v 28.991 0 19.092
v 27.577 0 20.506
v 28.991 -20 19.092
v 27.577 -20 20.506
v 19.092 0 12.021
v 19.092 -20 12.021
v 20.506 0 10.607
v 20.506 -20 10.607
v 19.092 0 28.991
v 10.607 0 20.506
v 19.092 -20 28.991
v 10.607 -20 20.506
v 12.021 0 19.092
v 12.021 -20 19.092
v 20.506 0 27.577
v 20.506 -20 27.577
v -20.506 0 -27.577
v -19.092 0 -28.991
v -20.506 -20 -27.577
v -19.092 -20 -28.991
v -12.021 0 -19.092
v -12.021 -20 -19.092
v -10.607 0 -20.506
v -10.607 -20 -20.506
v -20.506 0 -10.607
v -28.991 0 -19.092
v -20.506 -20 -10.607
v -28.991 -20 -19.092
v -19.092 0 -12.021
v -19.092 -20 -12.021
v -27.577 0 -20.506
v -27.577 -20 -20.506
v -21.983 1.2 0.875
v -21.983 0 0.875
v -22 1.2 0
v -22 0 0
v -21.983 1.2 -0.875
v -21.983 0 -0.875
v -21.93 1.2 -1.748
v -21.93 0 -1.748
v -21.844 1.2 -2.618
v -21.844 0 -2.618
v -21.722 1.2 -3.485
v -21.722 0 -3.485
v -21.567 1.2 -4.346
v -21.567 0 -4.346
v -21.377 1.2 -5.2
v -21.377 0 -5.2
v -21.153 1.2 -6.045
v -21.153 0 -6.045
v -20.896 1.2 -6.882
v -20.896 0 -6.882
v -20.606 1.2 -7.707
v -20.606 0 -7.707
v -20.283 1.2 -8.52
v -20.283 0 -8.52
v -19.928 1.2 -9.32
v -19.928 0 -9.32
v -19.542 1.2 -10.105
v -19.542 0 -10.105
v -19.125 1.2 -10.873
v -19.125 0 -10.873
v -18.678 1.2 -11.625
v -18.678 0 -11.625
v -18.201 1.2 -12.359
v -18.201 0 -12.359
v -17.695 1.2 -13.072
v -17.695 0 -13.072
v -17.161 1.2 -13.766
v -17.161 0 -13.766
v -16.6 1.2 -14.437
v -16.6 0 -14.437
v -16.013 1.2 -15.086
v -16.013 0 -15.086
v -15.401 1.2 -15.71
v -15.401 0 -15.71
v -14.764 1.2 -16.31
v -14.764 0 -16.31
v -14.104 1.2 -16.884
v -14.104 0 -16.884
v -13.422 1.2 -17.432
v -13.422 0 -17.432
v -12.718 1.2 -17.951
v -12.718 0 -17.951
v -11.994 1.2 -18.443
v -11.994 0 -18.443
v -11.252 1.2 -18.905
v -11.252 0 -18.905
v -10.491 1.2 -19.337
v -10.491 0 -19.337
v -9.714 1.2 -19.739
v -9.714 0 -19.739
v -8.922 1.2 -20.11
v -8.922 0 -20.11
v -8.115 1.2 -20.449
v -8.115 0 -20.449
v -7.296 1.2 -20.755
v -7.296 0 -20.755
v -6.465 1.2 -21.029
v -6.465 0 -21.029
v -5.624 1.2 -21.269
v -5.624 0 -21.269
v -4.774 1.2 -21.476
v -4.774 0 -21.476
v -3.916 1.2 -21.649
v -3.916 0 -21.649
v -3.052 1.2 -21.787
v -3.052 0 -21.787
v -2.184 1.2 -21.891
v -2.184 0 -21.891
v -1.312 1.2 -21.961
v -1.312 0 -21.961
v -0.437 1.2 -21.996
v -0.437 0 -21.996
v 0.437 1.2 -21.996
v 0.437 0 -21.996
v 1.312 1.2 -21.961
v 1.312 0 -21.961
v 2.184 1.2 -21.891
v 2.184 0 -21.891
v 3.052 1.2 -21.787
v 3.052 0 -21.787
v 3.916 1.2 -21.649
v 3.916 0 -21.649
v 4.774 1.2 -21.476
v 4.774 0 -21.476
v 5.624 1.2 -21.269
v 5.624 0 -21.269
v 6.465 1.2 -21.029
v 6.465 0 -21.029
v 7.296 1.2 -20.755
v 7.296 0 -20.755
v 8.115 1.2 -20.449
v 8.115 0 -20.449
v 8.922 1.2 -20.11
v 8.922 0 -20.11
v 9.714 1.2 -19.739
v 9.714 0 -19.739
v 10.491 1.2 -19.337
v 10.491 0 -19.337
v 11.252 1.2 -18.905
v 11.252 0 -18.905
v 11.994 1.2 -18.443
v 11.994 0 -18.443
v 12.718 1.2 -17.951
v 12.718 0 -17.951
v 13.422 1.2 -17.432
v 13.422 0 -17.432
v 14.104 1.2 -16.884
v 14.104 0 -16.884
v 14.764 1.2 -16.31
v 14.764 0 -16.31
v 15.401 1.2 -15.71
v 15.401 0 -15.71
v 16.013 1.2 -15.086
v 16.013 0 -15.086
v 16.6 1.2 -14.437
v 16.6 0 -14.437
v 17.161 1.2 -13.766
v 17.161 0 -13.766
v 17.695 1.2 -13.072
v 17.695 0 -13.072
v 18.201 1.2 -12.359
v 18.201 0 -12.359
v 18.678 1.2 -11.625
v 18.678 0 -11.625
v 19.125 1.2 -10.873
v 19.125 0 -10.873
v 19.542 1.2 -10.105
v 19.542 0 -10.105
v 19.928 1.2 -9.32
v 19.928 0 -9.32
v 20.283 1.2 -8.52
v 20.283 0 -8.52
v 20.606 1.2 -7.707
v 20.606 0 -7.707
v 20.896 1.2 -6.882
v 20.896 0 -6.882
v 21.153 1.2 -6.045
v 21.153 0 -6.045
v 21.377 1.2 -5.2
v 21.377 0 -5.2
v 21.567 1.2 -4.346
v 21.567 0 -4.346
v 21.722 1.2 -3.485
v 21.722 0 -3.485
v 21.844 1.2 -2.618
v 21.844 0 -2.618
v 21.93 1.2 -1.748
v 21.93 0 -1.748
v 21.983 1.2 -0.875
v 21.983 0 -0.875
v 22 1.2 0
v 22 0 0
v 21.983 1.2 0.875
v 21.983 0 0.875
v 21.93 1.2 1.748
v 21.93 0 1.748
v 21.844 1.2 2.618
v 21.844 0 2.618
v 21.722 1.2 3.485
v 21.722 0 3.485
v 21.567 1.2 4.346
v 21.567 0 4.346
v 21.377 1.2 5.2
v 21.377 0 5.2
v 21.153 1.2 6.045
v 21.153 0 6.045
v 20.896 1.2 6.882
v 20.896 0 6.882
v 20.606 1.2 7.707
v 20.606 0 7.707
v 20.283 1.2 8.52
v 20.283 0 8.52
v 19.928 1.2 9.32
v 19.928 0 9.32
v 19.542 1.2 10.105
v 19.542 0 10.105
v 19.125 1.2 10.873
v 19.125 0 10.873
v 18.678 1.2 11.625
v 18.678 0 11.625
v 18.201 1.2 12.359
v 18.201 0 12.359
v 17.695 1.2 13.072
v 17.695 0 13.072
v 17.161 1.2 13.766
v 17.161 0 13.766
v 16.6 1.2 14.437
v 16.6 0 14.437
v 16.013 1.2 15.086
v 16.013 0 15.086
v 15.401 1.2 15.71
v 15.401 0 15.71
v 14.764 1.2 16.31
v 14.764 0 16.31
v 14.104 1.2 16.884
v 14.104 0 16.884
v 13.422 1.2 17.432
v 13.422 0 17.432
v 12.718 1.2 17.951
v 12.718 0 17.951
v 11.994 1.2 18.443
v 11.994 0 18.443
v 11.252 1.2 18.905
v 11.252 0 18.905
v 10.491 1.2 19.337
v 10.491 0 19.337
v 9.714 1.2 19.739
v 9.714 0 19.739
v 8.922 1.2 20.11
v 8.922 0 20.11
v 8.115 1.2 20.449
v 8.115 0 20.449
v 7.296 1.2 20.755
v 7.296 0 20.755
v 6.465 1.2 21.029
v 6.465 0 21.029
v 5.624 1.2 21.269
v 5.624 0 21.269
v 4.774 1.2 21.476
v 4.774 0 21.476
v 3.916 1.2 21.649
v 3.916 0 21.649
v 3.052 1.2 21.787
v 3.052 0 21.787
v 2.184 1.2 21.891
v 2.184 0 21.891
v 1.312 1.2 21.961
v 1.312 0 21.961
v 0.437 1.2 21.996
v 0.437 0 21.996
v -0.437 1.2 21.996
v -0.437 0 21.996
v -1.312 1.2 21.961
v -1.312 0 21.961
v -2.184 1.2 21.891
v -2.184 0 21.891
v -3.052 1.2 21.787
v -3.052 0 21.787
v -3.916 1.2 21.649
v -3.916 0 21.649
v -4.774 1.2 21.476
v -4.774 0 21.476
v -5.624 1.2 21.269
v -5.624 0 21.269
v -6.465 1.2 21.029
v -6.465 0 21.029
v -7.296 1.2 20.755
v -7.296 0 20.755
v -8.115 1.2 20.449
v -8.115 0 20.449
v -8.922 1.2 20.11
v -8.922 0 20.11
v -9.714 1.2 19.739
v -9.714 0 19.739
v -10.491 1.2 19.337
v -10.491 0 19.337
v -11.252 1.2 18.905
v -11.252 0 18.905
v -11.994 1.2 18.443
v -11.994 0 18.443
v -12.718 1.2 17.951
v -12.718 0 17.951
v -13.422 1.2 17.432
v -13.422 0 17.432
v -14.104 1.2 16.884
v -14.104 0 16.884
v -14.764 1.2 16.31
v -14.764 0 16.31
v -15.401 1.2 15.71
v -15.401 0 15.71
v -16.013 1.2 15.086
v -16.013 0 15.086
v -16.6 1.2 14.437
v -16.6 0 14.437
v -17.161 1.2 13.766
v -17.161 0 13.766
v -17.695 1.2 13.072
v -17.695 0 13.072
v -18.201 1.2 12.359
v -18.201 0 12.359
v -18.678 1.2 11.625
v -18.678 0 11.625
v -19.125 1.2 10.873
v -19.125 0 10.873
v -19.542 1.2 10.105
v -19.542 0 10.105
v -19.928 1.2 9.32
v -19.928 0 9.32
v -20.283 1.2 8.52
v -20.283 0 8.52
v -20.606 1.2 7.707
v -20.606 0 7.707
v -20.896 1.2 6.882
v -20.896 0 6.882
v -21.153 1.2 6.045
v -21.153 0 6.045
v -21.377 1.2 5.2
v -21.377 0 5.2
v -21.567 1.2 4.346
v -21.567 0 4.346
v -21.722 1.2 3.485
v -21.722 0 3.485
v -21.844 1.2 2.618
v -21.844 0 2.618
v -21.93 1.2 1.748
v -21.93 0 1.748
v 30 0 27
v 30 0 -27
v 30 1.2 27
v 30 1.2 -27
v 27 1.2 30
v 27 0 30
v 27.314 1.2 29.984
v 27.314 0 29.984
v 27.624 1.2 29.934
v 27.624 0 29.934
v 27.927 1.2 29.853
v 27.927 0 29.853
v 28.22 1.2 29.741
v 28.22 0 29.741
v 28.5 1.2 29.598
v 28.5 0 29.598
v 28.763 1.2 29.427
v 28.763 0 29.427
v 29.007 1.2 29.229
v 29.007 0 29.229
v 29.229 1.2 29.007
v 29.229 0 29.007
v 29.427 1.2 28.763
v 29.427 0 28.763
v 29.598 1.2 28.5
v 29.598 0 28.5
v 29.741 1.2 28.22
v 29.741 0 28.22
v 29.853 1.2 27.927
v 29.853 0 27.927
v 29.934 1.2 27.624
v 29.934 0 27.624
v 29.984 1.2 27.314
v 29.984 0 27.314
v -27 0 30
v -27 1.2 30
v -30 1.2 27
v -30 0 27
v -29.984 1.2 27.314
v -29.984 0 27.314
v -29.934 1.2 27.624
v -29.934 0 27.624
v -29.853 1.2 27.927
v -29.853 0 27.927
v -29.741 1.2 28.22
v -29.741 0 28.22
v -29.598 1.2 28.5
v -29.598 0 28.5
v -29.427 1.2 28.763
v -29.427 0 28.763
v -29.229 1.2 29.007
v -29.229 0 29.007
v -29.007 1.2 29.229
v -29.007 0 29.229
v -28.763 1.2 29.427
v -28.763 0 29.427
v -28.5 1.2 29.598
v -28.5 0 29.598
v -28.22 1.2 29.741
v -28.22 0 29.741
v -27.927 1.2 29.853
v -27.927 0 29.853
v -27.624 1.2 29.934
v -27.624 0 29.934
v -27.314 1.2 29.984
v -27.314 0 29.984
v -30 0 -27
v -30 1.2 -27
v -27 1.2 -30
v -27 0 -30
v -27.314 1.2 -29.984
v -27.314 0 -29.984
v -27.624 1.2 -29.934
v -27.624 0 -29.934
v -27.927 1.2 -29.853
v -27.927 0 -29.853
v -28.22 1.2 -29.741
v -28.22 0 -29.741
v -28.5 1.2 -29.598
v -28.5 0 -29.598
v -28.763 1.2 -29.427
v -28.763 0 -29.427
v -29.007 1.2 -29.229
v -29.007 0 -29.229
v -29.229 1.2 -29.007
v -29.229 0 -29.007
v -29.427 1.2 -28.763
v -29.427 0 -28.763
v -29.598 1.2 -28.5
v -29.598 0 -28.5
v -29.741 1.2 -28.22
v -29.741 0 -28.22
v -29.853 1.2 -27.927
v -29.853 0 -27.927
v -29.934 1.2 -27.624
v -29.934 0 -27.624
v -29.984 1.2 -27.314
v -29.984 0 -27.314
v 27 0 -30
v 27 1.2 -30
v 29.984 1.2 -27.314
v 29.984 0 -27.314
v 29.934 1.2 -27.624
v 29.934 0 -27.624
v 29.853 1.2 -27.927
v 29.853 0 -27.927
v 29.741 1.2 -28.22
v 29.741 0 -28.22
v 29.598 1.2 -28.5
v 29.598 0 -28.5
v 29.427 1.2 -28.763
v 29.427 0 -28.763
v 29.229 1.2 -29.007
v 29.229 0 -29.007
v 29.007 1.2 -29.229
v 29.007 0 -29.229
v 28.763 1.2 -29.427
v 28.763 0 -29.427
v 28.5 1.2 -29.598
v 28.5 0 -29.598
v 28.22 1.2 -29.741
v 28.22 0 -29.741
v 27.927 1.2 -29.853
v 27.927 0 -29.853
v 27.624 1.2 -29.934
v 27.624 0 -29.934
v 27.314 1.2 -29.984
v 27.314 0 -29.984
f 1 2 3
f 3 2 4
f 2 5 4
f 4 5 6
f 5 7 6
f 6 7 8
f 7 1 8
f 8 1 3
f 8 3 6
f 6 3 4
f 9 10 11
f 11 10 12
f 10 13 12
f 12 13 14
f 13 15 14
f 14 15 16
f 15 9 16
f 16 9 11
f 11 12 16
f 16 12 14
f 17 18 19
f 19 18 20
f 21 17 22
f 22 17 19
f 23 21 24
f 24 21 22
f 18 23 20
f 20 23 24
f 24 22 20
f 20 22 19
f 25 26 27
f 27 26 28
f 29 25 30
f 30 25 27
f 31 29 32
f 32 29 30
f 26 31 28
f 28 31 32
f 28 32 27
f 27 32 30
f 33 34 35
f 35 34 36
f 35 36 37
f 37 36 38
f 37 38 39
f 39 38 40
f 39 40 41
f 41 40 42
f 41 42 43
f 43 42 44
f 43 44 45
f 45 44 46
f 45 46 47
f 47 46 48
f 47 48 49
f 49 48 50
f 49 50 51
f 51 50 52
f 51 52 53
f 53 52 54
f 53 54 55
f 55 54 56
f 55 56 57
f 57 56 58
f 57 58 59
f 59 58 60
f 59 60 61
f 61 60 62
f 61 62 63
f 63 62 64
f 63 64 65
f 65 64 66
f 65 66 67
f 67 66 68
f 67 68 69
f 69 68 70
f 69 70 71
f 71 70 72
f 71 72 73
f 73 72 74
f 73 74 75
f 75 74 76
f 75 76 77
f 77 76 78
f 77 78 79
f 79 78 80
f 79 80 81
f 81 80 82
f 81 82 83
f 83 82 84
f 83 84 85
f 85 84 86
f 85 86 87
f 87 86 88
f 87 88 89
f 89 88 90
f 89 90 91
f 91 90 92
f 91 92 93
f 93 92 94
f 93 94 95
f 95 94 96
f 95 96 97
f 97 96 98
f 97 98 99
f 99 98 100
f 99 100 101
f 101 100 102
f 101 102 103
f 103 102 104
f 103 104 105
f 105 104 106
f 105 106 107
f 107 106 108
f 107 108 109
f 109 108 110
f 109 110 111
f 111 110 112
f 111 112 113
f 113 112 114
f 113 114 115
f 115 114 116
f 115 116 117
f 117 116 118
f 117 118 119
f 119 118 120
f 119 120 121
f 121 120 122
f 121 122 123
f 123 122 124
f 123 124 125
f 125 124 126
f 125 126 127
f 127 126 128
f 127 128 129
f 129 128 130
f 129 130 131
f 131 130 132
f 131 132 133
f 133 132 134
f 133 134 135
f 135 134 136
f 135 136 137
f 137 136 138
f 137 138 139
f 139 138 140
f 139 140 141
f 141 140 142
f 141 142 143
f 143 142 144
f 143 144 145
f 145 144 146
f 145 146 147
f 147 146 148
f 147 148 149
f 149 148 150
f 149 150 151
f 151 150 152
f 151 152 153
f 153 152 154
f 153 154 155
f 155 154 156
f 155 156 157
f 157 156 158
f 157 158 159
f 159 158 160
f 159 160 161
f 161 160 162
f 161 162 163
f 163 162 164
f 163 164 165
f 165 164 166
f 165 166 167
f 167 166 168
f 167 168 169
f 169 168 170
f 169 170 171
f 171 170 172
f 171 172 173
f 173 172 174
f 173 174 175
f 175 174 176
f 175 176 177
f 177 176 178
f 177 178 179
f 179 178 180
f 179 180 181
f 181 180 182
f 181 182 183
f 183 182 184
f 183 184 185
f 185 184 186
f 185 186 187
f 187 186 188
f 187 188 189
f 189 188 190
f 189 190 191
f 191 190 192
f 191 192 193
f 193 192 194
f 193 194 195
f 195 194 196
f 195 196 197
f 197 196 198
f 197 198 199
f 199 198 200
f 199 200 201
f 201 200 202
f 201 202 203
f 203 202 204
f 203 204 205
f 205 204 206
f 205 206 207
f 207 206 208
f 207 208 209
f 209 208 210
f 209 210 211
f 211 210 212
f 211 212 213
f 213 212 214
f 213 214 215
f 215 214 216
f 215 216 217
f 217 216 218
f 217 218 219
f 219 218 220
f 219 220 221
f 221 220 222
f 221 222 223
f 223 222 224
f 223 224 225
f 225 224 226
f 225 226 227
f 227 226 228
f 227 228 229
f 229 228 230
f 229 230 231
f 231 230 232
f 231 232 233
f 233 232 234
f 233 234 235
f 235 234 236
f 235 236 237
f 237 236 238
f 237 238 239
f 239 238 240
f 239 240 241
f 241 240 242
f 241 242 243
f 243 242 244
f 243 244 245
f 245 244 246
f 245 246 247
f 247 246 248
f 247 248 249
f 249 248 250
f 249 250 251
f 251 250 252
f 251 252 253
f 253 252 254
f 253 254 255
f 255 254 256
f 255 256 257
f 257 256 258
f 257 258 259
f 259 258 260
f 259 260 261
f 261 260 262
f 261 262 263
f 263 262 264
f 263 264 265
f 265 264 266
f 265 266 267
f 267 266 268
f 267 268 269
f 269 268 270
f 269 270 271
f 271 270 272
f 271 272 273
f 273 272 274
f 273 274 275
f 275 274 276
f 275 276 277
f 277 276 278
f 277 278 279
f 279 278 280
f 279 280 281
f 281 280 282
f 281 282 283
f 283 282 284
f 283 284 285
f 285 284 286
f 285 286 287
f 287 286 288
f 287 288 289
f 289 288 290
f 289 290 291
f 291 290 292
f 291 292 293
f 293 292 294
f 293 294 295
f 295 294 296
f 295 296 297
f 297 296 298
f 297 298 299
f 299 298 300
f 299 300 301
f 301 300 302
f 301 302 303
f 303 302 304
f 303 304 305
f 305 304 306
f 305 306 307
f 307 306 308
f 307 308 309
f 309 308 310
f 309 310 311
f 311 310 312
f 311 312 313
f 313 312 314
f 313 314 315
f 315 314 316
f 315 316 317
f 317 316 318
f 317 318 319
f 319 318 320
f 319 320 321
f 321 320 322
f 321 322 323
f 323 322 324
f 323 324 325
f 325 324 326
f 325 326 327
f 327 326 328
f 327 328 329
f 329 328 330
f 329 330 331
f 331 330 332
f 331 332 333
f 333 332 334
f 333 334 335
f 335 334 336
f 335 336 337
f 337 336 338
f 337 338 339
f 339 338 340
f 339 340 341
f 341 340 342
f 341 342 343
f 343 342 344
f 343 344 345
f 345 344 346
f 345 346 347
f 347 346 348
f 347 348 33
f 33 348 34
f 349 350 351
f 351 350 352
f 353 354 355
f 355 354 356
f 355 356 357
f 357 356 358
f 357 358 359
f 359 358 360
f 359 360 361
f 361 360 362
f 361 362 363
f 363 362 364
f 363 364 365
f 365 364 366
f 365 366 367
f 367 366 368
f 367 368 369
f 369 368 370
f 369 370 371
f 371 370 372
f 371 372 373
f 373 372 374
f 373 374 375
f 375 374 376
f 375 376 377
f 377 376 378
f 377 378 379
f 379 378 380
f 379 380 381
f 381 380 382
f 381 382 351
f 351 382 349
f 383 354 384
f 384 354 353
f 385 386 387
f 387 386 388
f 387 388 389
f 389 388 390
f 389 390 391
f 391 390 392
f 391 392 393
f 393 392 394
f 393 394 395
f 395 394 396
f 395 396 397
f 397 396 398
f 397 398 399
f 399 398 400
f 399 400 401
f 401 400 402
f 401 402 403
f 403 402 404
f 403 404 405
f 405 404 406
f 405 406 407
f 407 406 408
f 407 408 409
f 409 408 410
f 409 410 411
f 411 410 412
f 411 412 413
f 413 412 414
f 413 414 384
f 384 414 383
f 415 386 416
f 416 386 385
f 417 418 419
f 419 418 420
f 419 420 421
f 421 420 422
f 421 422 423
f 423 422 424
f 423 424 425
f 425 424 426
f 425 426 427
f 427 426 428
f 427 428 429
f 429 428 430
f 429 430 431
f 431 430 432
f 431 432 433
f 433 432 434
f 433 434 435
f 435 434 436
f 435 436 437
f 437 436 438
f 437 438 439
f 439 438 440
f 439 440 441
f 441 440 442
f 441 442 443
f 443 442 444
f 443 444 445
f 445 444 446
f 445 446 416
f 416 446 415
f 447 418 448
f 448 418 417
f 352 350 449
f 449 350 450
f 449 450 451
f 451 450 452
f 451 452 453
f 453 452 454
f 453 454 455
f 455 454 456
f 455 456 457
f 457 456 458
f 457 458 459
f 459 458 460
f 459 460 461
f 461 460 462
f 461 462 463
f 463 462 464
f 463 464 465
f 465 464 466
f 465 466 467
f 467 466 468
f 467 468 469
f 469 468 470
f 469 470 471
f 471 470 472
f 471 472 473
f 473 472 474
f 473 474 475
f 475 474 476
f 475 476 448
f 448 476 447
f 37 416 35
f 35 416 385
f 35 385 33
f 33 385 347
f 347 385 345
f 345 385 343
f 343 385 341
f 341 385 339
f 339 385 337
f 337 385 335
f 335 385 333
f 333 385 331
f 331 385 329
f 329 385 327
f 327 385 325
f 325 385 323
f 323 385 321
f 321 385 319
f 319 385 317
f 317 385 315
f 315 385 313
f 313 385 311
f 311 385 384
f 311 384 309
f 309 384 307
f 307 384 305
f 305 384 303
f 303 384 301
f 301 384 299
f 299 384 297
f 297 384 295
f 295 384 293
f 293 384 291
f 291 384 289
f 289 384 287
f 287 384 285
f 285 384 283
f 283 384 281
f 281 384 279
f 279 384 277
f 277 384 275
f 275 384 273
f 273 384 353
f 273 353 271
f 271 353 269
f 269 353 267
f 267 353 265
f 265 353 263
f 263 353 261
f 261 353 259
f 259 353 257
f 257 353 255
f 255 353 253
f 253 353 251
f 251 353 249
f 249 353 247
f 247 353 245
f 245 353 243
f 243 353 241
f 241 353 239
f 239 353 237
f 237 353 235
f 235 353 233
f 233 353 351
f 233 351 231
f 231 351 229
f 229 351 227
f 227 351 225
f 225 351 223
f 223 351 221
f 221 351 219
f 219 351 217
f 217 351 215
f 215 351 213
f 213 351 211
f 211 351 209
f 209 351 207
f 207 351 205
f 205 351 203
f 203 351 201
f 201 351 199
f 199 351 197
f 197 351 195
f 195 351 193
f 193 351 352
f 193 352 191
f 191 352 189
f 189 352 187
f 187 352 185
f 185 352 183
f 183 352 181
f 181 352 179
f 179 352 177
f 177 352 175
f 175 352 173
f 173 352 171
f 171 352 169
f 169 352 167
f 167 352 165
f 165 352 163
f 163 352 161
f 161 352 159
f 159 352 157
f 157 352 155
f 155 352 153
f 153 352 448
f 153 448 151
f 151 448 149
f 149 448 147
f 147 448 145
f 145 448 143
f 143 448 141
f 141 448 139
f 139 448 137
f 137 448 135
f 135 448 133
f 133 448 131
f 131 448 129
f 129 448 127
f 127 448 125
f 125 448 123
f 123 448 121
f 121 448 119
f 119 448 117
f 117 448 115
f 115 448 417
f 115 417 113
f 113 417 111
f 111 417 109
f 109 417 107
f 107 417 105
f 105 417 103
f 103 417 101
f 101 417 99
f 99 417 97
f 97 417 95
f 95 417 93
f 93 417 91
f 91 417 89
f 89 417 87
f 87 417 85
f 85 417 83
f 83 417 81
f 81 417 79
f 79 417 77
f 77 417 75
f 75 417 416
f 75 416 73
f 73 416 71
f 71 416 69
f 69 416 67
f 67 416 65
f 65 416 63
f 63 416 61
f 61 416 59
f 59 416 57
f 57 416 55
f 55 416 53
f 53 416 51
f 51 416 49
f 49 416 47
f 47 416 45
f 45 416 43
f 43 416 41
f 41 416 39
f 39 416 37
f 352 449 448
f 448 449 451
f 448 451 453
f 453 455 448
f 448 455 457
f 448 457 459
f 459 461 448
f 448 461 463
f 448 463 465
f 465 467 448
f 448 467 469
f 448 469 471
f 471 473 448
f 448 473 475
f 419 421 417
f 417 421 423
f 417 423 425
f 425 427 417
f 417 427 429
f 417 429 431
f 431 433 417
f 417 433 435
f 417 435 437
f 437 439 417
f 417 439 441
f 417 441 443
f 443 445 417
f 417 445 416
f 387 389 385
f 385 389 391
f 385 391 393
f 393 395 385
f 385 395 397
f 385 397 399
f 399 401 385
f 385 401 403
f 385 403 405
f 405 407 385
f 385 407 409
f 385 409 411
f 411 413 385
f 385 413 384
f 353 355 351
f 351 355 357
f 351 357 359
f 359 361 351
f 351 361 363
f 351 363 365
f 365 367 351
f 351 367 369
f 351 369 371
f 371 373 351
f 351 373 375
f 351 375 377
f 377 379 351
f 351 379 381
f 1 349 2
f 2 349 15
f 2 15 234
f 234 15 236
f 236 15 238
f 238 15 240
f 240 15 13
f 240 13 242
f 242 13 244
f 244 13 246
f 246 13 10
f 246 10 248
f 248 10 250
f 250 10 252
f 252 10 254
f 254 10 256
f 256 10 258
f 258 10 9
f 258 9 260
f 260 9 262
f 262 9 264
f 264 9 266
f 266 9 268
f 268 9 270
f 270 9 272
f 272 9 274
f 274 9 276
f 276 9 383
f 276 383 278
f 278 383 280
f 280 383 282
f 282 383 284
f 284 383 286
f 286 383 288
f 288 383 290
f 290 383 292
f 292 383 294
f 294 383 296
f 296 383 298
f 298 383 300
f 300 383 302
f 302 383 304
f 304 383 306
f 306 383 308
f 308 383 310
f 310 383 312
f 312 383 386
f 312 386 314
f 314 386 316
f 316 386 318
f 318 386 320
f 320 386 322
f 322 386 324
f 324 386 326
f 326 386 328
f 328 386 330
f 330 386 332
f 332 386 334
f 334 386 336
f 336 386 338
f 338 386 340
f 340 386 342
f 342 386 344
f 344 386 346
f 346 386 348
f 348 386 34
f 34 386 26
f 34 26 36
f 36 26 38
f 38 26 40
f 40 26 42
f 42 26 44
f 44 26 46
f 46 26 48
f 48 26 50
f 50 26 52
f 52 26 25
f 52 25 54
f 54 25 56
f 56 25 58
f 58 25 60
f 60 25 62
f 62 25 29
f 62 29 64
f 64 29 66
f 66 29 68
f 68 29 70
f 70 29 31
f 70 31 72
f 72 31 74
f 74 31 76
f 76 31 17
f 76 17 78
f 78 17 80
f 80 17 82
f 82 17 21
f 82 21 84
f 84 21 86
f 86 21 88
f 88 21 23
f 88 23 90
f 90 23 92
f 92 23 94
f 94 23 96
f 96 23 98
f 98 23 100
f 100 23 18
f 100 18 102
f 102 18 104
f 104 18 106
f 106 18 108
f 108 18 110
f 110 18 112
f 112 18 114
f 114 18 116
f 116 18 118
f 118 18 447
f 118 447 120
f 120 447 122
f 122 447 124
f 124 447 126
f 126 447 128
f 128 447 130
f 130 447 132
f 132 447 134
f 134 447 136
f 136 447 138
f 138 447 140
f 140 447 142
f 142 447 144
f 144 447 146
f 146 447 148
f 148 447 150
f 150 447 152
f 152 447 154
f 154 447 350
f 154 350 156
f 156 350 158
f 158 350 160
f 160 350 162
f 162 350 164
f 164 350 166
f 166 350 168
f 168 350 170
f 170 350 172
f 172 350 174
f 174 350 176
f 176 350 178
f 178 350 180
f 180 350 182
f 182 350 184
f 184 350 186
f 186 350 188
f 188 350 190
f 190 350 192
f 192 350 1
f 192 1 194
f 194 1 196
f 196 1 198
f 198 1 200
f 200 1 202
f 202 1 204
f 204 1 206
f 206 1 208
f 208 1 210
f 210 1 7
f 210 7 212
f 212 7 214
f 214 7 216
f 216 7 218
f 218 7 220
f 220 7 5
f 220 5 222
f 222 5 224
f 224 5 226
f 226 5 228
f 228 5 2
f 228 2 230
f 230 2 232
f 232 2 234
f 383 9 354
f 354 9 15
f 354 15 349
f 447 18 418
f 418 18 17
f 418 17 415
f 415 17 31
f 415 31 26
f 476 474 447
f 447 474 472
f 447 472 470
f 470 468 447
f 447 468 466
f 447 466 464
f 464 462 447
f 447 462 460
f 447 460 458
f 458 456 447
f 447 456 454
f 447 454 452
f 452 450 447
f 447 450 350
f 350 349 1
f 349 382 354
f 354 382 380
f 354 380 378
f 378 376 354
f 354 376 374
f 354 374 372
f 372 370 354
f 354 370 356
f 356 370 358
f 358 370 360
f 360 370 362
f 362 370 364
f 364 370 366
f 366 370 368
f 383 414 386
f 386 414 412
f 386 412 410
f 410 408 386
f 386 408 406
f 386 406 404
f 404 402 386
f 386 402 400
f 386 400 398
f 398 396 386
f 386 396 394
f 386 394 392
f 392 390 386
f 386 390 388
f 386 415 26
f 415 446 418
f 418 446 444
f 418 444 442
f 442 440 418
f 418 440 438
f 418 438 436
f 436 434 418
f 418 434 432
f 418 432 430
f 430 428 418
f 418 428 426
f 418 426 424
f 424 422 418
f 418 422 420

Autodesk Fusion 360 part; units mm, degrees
sketch "MainRest" plane through (0, 0, 0) normal (0, 1, 0) x (1, 0, 0)
  circle A0 centre (0, 0) radius 36 construction
  line L0 (27, 30) -> (-27, 30)
  line L1 (-30, 27) -> (-30, -27)
  line L2 (-27, -30) -> (27, -30)
  line L3 (30, -27) -> (30, 27)
  line L4 (30, 30) -> (-30, -30) construction
  line L5 (-30, 30) -> (30, -30) construction
  circle A1 centre (0, 0) radius 22
  arc A2 (-27, 30) -> (-30, 27) centre (-27, 27) ccw
  arc A3 (27, -30) -> (30, -27) centre (27, -27) ccw
  arc A4 (-30, -27) -> (-27, -30) centre (-27, -27) ccw
  arc A5 (30, 27) -> (27, 30) centre (27, 27) ccw
  dimension "d3" = 72
  dimension "d4" = 60
  dimension "d5" = 60
  dimension "d8" = 44
  dimension "d9" = 3
extrude "Extrude1" add sketch "MainRest" along normal blind 1.2
ref_plane "WorkPlane1" through (-15.5563, 1.9245, -15.5563) normal (0.7071, 0, 0.7071) x (-0.7071, 0, 0.7071)
ref_plane "WorkPlane2" through (15.5563, 0.9394, 15.5563) normal (-0.7071, 0, -0.7071) x (0.7071, 0, -0.7071)
sketch "SensorHolder" plane through (0, 0, 0) normal (0, -1, 0) x (1, 0, 0)
  circle A0 centre (0, 0) radius 22
  arc A1 (27, -30) -> (30, -27) centre (27, -27) ccw
  line L0 (30, -27) -> (30, 27)
  arc A2 (30, 27) -> (27, 30) centre (27, 27) ccw
  line L1 (27, 30) -> (-27, 30)
  arc A3 (-27, 30) -> (-30, 27) centre (-27, 27) ccw
  line L2 (-30, 27) -> (-30, -27)
  arc A4 (-30, -27) -> (-27, -30) centre (-27, -27) ccw
  line L3 (-27, -30) -> (27, -30)
  line L4 (10.8437, -41.9563) -> (-41.9563, 10.8437) construction
  circle A5 centre (0, 0) radius 22 construction
  arc A6 (-29.1233, -20.3743) -> (-29.4263, -20.7386) centre (-26.9042, -22.5282) ccw
  circle A7 centre (0, 0) radius 36
  line L5 (-19.0919, -12.0208) -> (-12.0208, -19.0919) construction
  line L6 (-12.0208, -19.0919) -> (-20.5061, -27.5772) construction
  line L7 (-20.5061, -27.5772) -> (-27.5772, -20.5061) construction
  line L8 (-27.5772, -20.5061) -> (-19.0919, -12.0208) construction
  line L9 (-20.5061, -27.5772) -> (-12.0208, -19.0919) construction
  line L10 (-27.5772, -20.5061) -> (-19.0919, -12.0208)
  line L11 (-19.0919, -12.0208) -> (-20.5061, -10.6066)
  line L12 (-20.5061, -10.6066) -> (-28.9914, -19.0919)
  line L13 (-28.9914, -19.0919) -> (-27.5772, -20.5061)
  line L14 (-20.5061, -27.5772) -> (-12.0208, -19.0919)
  line L15 (-12.0208, -19.0919) -> (-10.6066, -20.5061)
  line L16 (-10.6066, -20.5061) -> (-19.0919, -28.9914)
  line L17 (-19.0919, -28.9914) -> (-20.5061, -27.5772)
  point P0 (-31.1127, -22.6274)
  dimension "d62" = 10
  dimension "d63" = 12
  dimension "d65" = 2
  dimension "d66" = 2
extrude "Extrude5" add sketch "SensorHolder" along normal blind 20 contours L10 L11 L12 L13 | L14 L15 L16 L17
ref_plane "WorkPlane3" through (0, 1.9245, 0) normal (0.7071, 0, 0.7071) x (-0.7071, 0, 0.7071)
mirror "Mirror1" about plane through (0, 1.9245, 0) normal (0.7071, 0, 0.7071) of "Extrude5"
equation "GutterSquareHoleWidth = 60 mm"
equation "GutterHoleDiameter = 72 mm"
equation "d3 = GutterHoleDiameter"
equation "d4 = GutterSquareHoleWidth"
equation "d5 = GutterSquareHoleWidth"
equation "GolfBallDiameter = 43 mm"
equation "GolfHolePadding = 1 mm"
equation "d8 = GolfBallDiameter + GolfHolePadding"
equation "d9 = SquareCornerRounding"
equation "SquareCornerRounding = 3 mm"
equation "SquareBitThickness = 1.2 mm"
equation "d12 = SquareBitThickness"
equation "SensorHeight = 20 mm"
equation "SensorWidth = 10 mm"
equation "SensorDepth = 8 mm"
equation "SensorRealDepth = 12 mm"
equation "SensorScrewBottomOffset = 3 mm"
equation "SensorScrewHoleDiameter = 4 mm"
equation "InsertDiameter = 4 mm"
equation "InsertHeight = 4 mm"
equation "SensorHolderThickness = 2 mm"
equation "d46 = SensorHeight"
equation "d62 = SensorWidth"
equation "d63 = SensorRealDepth"
equation "d65 = SensorHolderThickness"
equation "d66 = SensorHolderThickness"
